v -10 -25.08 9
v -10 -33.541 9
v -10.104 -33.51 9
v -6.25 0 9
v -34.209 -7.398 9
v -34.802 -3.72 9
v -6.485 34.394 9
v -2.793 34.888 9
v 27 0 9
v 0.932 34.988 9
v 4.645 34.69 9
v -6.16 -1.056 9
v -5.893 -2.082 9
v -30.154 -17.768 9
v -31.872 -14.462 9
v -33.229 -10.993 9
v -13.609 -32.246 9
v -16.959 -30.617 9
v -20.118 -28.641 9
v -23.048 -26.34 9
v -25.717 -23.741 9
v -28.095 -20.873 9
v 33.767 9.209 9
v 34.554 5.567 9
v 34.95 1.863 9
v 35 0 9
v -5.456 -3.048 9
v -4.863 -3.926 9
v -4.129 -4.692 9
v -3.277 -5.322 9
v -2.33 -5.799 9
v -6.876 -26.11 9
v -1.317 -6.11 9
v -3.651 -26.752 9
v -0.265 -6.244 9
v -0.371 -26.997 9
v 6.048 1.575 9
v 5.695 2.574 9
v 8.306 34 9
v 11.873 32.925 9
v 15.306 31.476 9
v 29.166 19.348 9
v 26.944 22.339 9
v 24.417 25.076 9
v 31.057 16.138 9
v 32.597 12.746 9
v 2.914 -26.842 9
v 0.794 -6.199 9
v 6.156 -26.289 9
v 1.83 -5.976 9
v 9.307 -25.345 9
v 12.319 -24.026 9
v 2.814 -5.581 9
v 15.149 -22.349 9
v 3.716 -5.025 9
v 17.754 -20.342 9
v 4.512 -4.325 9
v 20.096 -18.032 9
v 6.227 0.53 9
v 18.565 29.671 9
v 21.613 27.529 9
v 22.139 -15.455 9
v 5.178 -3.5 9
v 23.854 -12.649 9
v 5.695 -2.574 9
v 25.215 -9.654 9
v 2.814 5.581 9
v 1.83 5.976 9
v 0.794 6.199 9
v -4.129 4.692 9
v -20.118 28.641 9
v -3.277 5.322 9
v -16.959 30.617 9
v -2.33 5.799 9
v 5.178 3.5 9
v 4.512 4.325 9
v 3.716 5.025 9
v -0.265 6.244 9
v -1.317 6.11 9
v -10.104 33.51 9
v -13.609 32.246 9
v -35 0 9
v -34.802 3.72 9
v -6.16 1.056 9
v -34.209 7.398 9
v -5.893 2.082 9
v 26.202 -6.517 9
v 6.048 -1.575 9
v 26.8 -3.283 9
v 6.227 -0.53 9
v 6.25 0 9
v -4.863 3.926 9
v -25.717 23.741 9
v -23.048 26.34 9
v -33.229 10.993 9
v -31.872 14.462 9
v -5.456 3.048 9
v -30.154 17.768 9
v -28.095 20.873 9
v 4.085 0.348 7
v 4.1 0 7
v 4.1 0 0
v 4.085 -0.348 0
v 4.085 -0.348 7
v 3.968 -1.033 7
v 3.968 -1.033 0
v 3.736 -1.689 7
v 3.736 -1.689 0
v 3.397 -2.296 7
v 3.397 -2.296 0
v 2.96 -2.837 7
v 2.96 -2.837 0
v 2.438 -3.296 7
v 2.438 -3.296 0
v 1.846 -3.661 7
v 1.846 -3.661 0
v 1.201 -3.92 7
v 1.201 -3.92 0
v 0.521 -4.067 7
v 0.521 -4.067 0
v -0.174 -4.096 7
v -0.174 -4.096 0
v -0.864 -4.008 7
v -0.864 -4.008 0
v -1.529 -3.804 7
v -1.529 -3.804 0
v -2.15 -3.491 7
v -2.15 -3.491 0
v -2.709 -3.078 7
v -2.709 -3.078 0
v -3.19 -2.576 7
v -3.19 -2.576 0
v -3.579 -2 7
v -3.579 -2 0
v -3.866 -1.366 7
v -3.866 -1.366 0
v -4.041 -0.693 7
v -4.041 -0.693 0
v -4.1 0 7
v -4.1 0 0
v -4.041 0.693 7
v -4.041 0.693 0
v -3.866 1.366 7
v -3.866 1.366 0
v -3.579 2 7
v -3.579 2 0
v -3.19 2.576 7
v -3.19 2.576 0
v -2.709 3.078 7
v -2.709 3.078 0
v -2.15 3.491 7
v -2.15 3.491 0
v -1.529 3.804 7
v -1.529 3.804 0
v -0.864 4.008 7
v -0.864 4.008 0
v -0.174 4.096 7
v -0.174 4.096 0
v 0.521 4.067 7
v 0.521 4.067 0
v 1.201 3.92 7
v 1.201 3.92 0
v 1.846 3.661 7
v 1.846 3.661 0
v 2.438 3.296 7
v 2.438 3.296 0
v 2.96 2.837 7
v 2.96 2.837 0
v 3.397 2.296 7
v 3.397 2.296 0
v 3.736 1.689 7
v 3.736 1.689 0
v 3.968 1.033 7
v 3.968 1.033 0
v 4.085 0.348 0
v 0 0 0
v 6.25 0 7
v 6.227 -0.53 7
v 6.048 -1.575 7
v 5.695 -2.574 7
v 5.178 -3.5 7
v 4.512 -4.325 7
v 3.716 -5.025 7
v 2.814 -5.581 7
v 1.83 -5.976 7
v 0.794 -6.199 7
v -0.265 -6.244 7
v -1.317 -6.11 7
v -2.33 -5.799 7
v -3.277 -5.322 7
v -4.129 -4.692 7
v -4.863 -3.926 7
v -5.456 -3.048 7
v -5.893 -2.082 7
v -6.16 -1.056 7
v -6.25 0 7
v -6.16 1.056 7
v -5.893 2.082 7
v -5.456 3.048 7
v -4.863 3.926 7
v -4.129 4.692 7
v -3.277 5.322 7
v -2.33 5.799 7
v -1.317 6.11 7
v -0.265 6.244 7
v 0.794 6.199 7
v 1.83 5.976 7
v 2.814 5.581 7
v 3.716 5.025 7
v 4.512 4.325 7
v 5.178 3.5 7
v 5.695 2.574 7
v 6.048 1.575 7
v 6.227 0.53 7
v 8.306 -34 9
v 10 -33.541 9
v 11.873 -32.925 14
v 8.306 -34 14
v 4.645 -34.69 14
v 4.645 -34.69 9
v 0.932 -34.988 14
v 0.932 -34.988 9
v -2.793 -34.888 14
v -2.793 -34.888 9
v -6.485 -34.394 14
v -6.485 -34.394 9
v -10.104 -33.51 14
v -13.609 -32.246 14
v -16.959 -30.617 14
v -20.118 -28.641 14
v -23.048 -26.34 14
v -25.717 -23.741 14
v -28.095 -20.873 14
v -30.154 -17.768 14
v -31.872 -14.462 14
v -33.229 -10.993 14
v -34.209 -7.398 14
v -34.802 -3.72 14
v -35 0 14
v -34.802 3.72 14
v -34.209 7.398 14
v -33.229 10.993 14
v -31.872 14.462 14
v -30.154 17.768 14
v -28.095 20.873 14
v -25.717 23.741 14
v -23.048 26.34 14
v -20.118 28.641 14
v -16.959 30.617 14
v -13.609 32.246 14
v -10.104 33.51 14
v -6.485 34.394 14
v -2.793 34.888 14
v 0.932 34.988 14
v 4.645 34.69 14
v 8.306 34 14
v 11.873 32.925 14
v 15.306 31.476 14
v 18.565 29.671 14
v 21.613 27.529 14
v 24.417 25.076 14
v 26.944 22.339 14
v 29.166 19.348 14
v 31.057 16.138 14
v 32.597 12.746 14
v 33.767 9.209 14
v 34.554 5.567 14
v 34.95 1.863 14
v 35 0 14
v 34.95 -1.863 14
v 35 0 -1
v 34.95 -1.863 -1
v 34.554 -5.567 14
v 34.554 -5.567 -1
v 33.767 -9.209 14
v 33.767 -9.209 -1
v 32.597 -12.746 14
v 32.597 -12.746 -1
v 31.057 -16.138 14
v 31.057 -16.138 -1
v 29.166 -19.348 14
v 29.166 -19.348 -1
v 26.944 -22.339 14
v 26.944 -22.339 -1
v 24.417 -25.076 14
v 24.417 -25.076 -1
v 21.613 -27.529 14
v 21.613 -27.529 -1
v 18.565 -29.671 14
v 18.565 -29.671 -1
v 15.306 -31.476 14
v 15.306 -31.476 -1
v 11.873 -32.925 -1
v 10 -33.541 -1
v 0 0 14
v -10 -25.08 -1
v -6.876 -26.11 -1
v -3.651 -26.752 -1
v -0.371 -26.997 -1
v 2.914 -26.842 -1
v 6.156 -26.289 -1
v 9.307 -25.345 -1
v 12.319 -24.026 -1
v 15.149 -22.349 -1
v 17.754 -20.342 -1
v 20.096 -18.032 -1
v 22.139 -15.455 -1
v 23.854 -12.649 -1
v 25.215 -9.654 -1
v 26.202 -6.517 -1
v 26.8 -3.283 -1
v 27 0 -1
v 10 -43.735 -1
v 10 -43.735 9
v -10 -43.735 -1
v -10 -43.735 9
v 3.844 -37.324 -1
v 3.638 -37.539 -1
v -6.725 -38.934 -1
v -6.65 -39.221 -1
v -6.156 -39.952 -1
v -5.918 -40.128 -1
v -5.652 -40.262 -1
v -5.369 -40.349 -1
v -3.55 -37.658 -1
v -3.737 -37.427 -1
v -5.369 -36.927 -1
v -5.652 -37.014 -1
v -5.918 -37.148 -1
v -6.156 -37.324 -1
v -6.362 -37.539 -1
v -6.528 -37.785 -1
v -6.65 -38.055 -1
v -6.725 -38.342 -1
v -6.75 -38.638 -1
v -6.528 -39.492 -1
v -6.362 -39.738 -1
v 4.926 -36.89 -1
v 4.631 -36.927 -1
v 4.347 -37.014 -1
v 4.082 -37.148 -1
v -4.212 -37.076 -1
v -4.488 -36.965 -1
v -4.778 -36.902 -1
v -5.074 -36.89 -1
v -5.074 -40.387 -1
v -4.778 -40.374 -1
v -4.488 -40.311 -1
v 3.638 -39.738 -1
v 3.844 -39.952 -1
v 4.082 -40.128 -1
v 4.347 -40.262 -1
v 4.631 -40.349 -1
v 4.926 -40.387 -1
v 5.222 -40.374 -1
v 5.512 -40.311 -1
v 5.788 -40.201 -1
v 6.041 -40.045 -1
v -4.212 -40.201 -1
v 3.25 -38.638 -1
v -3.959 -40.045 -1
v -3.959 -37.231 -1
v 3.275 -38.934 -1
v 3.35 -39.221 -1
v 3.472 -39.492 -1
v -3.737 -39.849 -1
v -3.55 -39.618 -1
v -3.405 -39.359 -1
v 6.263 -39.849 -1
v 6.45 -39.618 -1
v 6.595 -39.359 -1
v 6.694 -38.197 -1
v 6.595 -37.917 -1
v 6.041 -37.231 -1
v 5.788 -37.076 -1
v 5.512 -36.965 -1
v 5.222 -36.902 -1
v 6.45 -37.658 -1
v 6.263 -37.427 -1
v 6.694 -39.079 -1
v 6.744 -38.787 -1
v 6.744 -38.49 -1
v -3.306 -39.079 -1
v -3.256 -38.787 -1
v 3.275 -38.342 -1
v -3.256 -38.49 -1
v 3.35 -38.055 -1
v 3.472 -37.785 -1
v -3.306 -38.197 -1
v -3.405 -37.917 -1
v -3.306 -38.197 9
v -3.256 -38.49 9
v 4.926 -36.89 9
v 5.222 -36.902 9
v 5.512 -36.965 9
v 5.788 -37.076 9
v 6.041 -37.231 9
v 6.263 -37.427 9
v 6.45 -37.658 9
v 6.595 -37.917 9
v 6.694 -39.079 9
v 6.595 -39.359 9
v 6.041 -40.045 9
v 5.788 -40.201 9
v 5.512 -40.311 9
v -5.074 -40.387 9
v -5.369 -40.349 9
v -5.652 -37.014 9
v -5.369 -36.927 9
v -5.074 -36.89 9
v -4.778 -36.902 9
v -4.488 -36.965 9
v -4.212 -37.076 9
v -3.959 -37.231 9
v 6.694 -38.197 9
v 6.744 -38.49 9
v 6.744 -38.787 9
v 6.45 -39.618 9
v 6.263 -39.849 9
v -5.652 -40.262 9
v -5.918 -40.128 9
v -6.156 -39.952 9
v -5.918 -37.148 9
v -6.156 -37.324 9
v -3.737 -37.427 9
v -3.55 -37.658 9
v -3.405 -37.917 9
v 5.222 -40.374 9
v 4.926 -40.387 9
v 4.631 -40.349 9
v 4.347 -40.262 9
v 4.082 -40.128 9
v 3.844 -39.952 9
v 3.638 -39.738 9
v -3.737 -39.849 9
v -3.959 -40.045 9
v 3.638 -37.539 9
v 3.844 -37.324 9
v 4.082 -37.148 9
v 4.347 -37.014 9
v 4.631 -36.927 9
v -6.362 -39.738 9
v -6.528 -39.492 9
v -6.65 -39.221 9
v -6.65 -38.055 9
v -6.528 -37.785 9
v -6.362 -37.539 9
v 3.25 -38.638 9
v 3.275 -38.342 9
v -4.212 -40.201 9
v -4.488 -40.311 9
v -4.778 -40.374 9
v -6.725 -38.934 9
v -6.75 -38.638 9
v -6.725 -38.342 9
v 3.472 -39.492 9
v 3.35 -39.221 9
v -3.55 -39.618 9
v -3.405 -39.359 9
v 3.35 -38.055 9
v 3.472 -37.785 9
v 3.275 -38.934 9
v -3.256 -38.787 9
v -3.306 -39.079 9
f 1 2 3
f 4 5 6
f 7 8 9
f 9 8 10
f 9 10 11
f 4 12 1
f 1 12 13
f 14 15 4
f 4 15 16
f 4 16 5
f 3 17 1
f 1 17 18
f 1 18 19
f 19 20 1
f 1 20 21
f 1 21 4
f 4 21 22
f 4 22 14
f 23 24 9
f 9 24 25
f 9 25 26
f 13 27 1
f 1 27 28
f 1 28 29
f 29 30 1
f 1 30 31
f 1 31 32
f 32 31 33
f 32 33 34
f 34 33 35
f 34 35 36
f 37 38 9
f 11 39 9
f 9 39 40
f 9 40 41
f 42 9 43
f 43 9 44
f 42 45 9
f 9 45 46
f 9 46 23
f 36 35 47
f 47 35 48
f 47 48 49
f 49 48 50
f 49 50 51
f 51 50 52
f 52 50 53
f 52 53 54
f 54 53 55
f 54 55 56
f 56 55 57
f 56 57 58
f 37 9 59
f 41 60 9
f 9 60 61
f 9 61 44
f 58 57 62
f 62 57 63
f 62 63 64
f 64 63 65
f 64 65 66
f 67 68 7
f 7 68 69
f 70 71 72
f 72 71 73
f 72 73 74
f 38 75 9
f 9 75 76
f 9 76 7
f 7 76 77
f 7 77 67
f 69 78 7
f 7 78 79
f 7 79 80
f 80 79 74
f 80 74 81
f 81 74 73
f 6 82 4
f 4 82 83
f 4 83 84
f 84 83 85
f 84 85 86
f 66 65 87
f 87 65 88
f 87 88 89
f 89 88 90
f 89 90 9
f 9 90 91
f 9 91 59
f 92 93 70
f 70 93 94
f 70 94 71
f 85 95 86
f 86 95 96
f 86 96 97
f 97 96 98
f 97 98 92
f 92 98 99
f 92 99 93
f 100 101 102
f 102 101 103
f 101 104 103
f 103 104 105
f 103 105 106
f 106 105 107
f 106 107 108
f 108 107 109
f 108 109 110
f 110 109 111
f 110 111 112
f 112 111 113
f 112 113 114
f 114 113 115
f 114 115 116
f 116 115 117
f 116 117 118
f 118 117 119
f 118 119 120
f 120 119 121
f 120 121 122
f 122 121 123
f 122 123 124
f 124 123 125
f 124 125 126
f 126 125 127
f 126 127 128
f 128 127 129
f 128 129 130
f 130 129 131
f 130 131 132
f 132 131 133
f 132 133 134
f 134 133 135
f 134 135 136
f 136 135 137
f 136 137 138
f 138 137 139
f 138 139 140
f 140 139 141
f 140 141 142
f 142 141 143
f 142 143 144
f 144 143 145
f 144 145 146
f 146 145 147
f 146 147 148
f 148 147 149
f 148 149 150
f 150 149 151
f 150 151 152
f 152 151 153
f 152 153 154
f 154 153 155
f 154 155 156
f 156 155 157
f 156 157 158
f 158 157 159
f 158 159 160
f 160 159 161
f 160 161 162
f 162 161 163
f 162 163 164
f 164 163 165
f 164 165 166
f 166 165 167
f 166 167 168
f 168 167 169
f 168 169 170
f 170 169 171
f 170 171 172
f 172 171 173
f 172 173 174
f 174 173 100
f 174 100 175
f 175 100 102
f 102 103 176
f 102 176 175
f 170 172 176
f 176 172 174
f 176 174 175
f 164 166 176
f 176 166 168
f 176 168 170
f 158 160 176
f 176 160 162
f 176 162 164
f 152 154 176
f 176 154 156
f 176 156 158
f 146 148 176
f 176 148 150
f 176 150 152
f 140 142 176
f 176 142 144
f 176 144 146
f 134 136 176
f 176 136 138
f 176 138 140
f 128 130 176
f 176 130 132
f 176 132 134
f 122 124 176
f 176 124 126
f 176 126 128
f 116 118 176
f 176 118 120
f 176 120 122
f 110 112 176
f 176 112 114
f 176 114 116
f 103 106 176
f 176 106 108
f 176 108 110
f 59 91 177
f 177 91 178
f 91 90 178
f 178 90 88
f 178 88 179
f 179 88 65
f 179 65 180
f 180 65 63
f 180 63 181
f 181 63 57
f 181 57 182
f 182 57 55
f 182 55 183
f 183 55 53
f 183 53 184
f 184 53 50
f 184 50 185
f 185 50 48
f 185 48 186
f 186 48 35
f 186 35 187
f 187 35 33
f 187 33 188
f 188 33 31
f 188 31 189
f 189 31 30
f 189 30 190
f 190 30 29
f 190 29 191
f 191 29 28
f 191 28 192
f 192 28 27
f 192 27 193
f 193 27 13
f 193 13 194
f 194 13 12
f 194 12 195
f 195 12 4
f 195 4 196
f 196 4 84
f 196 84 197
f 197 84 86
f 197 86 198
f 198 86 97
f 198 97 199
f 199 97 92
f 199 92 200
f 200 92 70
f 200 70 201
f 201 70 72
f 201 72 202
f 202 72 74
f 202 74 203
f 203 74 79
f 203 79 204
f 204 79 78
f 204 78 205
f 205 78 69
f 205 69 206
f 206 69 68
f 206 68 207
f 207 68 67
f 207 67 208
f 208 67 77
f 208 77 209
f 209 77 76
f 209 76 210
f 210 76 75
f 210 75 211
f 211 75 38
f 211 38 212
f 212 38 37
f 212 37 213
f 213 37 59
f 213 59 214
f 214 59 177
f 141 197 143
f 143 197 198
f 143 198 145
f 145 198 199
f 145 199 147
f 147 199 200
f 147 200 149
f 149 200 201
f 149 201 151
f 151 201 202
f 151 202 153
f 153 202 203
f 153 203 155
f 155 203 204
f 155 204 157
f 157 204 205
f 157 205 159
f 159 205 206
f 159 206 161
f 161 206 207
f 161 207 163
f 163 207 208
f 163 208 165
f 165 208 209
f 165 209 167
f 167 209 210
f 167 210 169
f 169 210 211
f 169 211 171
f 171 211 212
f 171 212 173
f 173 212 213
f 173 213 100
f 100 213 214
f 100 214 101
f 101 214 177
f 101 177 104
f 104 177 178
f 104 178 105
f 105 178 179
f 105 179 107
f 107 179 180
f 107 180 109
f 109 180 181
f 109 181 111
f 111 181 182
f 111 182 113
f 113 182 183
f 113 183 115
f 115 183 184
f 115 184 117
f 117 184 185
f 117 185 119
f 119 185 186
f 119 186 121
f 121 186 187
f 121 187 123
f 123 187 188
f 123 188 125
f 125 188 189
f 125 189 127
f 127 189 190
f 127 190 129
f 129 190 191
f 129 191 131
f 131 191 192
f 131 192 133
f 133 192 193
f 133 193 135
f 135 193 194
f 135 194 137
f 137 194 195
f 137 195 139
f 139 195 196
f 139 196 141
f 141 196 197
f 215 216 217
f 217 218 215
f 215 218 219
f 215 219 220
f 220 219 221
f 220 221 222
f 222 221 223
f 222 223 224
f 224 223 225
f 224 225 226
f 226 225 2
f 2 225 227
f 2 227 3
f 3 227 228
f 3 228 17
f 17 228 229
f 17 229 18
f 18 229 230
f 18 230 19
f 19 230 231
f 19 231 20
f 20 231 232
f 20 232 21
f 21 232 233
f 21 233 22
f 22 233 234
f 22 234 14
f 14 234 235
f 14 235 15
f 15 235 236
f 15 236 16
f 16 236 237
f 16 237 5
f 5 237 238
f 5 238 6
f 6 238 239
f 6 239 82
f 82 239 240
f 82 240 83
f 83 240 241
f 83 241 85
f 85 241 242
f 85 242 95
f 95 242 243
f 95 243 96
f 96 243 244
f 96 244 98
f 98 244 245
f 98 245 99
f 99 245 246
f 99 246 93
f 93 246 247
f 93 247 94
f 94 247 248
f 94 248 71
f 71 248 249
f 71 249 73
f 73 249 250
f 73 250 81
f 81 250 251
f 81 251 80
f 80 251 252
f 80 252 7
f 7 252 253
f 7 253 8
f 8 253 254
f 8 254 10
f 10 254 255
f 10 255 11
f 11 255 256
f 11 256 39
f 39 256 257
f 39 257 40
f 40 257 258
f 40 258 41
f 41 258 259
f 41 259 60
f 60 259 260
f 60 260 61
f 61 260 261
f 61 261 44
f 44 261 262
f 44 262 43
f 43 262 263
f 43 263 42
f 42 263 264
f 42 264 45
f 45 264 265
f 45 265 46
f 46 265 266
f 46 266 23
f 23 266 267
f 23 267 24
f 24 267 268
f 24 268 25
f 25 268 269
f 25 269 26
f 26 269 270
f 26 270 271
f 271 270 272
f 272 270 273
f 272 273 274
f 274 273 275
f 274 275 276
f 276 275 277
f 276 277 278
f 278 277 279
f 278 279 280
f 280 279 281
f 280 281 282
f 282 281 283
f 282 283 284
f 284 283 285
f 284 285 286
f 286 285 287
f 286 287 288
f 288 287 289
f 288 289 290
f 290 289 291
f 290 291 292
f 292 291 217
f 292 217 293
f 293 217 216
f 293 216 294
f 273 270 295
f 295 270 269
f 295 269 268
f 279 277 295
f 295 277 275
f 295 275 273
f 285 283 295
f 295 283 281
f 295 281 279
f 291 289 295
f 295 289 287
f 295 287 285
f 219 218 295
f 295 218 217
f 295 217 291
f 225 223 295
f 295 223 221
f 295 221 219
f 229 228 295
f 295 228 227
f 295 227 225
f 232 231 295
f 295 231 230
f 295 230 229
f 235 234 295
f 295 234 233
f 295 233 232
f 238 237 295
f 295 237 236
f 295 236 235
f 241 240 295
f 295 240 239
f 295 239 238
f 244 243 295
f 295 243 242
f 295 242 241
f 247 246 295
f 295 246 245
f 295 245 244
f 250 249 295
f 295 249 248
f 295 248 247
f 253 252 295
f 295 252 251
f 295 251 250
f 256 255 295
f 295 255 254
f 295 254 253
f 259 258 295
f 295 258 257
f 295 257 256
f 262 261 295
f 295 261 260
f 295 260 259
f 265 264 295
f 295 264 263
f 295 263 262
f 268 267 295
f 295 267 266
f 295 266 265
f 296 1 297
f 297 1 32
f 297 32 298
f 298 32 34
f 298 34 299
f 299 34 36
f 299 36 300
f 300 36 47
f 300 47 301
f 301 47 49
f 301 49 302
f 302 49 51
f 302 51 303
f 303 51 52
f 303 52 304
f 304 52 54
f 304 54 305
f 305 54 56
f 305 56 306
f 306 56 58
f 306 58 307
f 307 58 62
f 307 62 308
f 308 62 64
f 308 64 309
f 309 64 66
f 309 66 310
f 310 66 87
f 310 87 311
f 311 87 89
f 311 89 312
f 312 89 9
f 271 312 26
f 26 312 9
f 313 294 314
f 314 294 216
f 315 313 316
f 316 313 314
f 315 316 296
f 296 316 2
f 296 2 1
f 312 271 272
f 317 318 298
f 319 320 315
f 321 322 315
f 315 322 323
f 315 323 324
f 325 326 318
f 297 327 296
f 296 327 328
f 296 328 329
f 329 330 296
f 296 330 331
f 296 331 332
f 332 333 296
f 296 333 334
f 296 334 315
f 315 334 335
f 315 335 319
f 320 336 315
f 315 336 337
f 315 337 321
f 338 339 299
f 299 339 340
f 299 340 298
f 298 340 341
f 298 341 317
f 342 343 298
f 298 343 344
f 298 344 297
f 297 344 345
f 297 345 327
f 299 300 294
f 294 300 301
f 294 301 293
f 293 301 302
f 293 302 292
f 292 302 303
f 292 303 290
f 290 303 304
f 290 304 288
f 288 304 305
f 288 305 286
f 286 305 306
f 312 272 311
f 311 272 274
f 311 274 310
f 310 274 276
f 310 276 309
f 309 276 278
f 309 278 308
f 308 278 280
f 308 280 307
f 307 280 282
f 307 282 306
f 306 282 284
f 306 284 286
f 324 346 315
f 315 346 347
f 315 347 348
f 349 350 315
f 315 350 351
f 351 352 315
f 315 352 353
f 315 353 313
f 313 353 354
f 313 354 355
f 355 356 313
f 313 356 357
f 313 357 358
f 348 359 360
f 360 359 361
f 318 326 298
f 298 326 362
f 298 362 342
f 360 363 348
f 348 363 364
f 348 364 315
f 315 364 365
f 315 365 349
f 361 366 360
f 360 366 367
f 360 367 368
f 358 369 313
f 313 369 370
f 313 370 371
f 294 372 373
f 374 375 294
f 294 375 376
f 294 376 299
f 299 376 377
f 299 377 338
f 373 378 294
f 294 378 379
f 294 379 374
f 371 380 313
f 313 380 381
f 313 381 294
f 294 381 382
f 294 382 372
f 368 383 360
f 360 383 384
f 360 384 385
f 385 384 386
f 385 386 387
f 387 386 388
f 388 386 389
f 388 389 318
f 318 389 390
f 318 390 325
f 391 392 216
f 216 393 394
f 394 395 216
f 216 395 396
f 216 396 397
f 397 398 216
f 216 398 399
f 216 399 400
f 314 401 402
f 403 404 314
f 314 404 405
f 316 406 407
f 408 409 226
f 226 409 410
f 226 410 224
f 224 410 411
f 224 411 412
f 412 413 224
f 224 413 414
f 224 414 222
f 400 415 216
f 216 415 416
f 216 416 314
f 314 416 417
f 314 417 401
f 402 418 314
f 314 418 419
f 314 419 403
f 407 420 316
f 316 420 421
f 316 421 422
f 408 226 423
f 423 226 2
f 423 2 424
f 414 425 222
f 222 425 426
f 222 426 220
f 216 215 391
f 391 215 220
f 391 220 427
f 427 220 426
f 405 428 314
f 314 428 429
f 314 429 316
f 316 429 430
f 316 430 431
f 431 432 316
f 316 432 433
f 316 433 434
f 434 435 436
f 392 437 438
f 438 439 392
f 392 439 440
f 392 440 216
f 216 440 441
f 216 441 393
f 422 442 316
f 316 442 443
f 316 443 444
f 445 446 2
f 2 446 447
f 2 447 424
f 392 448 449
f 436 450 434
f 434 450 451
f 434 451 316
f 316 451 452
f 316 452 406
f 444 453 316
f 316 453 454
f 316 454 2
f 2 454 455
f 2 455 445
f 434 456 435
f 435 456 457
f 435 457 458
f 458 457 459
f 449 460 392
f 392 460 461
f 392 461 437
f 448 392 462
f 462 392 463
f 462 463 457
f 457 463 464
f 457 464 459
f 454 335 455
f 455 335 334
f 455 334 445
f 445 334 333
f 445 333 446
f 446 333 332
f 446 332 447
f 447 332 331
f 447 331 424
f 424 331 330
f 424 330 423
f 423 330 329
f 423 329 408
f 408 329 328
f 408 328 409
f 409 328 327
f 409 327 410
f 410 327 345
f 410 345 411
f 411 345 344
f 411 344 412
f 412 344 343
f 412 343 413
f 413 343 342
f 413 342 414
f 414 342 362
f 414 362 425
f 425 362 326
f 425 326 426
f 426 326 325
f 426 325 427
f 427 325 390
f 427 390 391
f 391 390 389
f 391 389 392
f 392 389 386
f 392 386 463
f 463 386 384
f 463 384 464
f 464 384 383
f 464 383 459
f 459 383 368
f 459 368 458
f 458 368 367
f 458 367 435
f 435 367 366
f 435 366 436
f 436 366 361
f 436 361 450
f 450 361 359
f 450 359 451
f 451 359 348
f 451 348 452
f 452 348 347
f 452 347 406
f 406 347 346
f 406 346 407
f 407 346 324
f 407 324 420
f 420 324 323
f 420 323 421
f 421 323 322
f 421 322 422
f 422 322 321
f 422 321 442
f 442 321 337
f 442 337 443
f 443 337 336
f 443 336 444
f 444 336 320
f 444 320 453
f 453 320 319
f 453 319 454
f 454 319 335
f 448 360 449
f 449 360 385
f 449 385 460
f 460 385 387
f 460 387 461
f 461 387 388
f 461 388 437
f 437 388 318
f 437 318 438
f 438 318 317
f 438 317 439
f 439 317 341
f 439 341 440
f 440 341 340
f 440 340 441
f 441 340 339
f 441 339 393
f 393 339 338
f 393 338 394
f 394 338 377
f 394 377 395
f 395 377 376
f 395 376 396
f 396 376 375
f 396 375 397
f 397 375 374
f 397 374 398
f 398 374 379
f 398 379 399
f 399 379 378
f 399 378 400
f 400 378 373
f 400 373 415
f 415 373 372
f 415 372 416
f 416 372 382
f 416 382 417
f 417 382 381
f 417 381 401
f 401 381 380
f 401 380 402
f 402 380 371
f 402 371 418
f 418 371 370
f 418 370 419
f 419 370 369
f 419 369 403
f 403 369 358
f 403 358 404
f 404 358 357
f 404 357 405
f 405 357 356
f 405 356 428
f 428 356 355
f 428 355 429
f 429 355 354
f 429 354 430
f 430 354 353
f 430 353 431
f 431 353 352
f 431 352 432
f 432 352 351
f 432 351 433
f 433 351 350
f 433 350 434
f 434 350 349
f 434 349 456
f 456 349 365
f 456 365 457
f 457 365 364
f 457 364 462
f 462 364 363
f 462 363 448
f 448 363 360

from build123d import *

# Parameters (mm, degrees)
SKETCH1_R               = 4.1
BOSS_EXTRUDE1_DEPTH     = 7
SKETCH2_R               = 6.25
BOSS_EXTRUDE2_DEPTH     = 2
SKETCH3_R               = 35
BOSS_EXTRUDE3_DEPTH     = 5
SKETCH4_R               = 25
BOSS_EXTRUDE4_DEPTH     = 5
SKETCH5_R               = 30
BOSS_EXTRUDE5_DEPTH     = 2
FILLET1_R               = 2
FILLET2_R               = 2
SKETCH6_R               = 1.5
CUT_EXTRUDE1_DEPTH      = 36
CUT_EXTRUDE1_DEPTH_BACK = 36
BOSS_EXTRUDE6_DEPTH     = 10
SKETCH9_R               = 1.75
CUT_EXTRUDE2_DEPTH      = 10
SKETCH10_R              = 52.509710967
CUT_EXTRUDE3_DEPTH      = 40


with BuildPart() as part:
    # Sketch1 → Boss-Extrude1 (new body)
    with BuildSketch(Plane.XY):
        Circle(SKETCH1_R)
    extrude(amount=BOSS_EXTRUDE1_DEPTH)

    # Sketch2 → Boss-Extrude2 (add)
    with BuildSketch(Plane.XY.offset(7)):
        Circle(SKETCH2_R)
    extrude(amount=BOSS_EXTRUDE2_DEPTH)

    # Sketch3 → Boss-Extrude3 (add)
    with BuildSketch(Plane.XY.offset(9)):
        Circle(SKETCH3_R)
    extrude(amount=BOSS_EXTRUDE3_DEPTH)

    # Sketch4 → Boss-Extrude4 (add)
    with BuildSketch(Plane.XY.offset(14)):
        Circle(SKETCH4_R)
    extrude(amount=BOSS_EXTRUDE4_DEPTH)

    # Sketch5 → Boss-Extrude5 (add)
    with BuildSketch(Plane.XY.offset(19)):
        Circle(SKETCH5_R)
    extrude(amount=BOSS_EXTRUDE5_DEPTH)

    # Fillet1
    fillet1_edges = [part.edges().sort_by_distance(p)[0] for p in [
        (-25, 0, 19),
    ]]
    fillet(fillet1_edges, radius=FILLET1_R)

    # Fillet2
    fillet2_edges = [part.edges().sort_by_distance(p)[0] for p in [
        (-25, 0, 14),
    ]]
    fillet(fillet2_edges, radius=FILLET2_R)

    # Sketch6 → Cut-Extrude1 (cut, two sides)
    with BuildSketch(Plane(origin=(0, 0, 0), x_dir=(1, 0, 0), z_dir=(0, 1, 0))) as cut_extrude1_sk:
        with Locations((0.008646323, -16.5)):
            Circle(SKETCH6_R)
    extrude(amount=CUT_EXTRUDE1_DEPTH, mode=Mode.SUBTRACT)
    extrude(cut_extrude1_sk.sketch, amount=-CUT_EXTRUDE1_DEPTH_BACK, mode=Mode.SUBTRACT)

    # Sketch7 → Boss-Extrude6 (add)
    with BuildSketch(Plane(origin=(0, 0, 9), x_dir=(-1, 0, 0), z_dir=(0, 0, -1))):
        with BuildLine():
            Line((10, -33.541019662), (10, -33.735334875))
            Line((10, -33.735334875), (10, -43.735334875))
            Line((10, -43.735334875), (-10, -43.735334875))
            Line((-10, -43.735334875), (-10, -33.735334875))
            Line((-10, -33.735334875), (-10, -33.541019662))
            ThreePointArc((-10, -33.541019662), (-28.062430401, -20.916500663), (-35, 0))
            Line((-35, 0), (-27, 0))
            ThreePointArc((-27, 0), (-15.149257408, -22.349496639), (10, -25.079872408))
            Line((10, -25.079872408), (10, -33.541019662))
        make_face()
    extrude(amount=BOSS_EXTRUDE6_DEPTH)

    # Sketch9 → Cut-Extrude2 (cut)
    with BuildSketch(Plane(origin=(0, 0, -1), x_dir=(-1, 0, 0), z_dir=(0, 0, -1))):
        with Locations((5, -38.638177269)):
            Circle(SKETCH9_R)
        with Locations((-5, -38.638177269)):
            Circle(SKETCH9_R)
    extrude(amount=-CUT_EXTRUDE2_DEPTH, mode=Mode.SUBTRACT)

    # Sketch10 → Cut-Extrude3 (cut)
    with BuildSketch(Plane.XY.offset(14)):
        Circle(SKETCH10_R)
    extrude(amount=CUT_EXTRUDE3_DEPTH, mode=Mode.SUBTRACT)


solid = part.part
